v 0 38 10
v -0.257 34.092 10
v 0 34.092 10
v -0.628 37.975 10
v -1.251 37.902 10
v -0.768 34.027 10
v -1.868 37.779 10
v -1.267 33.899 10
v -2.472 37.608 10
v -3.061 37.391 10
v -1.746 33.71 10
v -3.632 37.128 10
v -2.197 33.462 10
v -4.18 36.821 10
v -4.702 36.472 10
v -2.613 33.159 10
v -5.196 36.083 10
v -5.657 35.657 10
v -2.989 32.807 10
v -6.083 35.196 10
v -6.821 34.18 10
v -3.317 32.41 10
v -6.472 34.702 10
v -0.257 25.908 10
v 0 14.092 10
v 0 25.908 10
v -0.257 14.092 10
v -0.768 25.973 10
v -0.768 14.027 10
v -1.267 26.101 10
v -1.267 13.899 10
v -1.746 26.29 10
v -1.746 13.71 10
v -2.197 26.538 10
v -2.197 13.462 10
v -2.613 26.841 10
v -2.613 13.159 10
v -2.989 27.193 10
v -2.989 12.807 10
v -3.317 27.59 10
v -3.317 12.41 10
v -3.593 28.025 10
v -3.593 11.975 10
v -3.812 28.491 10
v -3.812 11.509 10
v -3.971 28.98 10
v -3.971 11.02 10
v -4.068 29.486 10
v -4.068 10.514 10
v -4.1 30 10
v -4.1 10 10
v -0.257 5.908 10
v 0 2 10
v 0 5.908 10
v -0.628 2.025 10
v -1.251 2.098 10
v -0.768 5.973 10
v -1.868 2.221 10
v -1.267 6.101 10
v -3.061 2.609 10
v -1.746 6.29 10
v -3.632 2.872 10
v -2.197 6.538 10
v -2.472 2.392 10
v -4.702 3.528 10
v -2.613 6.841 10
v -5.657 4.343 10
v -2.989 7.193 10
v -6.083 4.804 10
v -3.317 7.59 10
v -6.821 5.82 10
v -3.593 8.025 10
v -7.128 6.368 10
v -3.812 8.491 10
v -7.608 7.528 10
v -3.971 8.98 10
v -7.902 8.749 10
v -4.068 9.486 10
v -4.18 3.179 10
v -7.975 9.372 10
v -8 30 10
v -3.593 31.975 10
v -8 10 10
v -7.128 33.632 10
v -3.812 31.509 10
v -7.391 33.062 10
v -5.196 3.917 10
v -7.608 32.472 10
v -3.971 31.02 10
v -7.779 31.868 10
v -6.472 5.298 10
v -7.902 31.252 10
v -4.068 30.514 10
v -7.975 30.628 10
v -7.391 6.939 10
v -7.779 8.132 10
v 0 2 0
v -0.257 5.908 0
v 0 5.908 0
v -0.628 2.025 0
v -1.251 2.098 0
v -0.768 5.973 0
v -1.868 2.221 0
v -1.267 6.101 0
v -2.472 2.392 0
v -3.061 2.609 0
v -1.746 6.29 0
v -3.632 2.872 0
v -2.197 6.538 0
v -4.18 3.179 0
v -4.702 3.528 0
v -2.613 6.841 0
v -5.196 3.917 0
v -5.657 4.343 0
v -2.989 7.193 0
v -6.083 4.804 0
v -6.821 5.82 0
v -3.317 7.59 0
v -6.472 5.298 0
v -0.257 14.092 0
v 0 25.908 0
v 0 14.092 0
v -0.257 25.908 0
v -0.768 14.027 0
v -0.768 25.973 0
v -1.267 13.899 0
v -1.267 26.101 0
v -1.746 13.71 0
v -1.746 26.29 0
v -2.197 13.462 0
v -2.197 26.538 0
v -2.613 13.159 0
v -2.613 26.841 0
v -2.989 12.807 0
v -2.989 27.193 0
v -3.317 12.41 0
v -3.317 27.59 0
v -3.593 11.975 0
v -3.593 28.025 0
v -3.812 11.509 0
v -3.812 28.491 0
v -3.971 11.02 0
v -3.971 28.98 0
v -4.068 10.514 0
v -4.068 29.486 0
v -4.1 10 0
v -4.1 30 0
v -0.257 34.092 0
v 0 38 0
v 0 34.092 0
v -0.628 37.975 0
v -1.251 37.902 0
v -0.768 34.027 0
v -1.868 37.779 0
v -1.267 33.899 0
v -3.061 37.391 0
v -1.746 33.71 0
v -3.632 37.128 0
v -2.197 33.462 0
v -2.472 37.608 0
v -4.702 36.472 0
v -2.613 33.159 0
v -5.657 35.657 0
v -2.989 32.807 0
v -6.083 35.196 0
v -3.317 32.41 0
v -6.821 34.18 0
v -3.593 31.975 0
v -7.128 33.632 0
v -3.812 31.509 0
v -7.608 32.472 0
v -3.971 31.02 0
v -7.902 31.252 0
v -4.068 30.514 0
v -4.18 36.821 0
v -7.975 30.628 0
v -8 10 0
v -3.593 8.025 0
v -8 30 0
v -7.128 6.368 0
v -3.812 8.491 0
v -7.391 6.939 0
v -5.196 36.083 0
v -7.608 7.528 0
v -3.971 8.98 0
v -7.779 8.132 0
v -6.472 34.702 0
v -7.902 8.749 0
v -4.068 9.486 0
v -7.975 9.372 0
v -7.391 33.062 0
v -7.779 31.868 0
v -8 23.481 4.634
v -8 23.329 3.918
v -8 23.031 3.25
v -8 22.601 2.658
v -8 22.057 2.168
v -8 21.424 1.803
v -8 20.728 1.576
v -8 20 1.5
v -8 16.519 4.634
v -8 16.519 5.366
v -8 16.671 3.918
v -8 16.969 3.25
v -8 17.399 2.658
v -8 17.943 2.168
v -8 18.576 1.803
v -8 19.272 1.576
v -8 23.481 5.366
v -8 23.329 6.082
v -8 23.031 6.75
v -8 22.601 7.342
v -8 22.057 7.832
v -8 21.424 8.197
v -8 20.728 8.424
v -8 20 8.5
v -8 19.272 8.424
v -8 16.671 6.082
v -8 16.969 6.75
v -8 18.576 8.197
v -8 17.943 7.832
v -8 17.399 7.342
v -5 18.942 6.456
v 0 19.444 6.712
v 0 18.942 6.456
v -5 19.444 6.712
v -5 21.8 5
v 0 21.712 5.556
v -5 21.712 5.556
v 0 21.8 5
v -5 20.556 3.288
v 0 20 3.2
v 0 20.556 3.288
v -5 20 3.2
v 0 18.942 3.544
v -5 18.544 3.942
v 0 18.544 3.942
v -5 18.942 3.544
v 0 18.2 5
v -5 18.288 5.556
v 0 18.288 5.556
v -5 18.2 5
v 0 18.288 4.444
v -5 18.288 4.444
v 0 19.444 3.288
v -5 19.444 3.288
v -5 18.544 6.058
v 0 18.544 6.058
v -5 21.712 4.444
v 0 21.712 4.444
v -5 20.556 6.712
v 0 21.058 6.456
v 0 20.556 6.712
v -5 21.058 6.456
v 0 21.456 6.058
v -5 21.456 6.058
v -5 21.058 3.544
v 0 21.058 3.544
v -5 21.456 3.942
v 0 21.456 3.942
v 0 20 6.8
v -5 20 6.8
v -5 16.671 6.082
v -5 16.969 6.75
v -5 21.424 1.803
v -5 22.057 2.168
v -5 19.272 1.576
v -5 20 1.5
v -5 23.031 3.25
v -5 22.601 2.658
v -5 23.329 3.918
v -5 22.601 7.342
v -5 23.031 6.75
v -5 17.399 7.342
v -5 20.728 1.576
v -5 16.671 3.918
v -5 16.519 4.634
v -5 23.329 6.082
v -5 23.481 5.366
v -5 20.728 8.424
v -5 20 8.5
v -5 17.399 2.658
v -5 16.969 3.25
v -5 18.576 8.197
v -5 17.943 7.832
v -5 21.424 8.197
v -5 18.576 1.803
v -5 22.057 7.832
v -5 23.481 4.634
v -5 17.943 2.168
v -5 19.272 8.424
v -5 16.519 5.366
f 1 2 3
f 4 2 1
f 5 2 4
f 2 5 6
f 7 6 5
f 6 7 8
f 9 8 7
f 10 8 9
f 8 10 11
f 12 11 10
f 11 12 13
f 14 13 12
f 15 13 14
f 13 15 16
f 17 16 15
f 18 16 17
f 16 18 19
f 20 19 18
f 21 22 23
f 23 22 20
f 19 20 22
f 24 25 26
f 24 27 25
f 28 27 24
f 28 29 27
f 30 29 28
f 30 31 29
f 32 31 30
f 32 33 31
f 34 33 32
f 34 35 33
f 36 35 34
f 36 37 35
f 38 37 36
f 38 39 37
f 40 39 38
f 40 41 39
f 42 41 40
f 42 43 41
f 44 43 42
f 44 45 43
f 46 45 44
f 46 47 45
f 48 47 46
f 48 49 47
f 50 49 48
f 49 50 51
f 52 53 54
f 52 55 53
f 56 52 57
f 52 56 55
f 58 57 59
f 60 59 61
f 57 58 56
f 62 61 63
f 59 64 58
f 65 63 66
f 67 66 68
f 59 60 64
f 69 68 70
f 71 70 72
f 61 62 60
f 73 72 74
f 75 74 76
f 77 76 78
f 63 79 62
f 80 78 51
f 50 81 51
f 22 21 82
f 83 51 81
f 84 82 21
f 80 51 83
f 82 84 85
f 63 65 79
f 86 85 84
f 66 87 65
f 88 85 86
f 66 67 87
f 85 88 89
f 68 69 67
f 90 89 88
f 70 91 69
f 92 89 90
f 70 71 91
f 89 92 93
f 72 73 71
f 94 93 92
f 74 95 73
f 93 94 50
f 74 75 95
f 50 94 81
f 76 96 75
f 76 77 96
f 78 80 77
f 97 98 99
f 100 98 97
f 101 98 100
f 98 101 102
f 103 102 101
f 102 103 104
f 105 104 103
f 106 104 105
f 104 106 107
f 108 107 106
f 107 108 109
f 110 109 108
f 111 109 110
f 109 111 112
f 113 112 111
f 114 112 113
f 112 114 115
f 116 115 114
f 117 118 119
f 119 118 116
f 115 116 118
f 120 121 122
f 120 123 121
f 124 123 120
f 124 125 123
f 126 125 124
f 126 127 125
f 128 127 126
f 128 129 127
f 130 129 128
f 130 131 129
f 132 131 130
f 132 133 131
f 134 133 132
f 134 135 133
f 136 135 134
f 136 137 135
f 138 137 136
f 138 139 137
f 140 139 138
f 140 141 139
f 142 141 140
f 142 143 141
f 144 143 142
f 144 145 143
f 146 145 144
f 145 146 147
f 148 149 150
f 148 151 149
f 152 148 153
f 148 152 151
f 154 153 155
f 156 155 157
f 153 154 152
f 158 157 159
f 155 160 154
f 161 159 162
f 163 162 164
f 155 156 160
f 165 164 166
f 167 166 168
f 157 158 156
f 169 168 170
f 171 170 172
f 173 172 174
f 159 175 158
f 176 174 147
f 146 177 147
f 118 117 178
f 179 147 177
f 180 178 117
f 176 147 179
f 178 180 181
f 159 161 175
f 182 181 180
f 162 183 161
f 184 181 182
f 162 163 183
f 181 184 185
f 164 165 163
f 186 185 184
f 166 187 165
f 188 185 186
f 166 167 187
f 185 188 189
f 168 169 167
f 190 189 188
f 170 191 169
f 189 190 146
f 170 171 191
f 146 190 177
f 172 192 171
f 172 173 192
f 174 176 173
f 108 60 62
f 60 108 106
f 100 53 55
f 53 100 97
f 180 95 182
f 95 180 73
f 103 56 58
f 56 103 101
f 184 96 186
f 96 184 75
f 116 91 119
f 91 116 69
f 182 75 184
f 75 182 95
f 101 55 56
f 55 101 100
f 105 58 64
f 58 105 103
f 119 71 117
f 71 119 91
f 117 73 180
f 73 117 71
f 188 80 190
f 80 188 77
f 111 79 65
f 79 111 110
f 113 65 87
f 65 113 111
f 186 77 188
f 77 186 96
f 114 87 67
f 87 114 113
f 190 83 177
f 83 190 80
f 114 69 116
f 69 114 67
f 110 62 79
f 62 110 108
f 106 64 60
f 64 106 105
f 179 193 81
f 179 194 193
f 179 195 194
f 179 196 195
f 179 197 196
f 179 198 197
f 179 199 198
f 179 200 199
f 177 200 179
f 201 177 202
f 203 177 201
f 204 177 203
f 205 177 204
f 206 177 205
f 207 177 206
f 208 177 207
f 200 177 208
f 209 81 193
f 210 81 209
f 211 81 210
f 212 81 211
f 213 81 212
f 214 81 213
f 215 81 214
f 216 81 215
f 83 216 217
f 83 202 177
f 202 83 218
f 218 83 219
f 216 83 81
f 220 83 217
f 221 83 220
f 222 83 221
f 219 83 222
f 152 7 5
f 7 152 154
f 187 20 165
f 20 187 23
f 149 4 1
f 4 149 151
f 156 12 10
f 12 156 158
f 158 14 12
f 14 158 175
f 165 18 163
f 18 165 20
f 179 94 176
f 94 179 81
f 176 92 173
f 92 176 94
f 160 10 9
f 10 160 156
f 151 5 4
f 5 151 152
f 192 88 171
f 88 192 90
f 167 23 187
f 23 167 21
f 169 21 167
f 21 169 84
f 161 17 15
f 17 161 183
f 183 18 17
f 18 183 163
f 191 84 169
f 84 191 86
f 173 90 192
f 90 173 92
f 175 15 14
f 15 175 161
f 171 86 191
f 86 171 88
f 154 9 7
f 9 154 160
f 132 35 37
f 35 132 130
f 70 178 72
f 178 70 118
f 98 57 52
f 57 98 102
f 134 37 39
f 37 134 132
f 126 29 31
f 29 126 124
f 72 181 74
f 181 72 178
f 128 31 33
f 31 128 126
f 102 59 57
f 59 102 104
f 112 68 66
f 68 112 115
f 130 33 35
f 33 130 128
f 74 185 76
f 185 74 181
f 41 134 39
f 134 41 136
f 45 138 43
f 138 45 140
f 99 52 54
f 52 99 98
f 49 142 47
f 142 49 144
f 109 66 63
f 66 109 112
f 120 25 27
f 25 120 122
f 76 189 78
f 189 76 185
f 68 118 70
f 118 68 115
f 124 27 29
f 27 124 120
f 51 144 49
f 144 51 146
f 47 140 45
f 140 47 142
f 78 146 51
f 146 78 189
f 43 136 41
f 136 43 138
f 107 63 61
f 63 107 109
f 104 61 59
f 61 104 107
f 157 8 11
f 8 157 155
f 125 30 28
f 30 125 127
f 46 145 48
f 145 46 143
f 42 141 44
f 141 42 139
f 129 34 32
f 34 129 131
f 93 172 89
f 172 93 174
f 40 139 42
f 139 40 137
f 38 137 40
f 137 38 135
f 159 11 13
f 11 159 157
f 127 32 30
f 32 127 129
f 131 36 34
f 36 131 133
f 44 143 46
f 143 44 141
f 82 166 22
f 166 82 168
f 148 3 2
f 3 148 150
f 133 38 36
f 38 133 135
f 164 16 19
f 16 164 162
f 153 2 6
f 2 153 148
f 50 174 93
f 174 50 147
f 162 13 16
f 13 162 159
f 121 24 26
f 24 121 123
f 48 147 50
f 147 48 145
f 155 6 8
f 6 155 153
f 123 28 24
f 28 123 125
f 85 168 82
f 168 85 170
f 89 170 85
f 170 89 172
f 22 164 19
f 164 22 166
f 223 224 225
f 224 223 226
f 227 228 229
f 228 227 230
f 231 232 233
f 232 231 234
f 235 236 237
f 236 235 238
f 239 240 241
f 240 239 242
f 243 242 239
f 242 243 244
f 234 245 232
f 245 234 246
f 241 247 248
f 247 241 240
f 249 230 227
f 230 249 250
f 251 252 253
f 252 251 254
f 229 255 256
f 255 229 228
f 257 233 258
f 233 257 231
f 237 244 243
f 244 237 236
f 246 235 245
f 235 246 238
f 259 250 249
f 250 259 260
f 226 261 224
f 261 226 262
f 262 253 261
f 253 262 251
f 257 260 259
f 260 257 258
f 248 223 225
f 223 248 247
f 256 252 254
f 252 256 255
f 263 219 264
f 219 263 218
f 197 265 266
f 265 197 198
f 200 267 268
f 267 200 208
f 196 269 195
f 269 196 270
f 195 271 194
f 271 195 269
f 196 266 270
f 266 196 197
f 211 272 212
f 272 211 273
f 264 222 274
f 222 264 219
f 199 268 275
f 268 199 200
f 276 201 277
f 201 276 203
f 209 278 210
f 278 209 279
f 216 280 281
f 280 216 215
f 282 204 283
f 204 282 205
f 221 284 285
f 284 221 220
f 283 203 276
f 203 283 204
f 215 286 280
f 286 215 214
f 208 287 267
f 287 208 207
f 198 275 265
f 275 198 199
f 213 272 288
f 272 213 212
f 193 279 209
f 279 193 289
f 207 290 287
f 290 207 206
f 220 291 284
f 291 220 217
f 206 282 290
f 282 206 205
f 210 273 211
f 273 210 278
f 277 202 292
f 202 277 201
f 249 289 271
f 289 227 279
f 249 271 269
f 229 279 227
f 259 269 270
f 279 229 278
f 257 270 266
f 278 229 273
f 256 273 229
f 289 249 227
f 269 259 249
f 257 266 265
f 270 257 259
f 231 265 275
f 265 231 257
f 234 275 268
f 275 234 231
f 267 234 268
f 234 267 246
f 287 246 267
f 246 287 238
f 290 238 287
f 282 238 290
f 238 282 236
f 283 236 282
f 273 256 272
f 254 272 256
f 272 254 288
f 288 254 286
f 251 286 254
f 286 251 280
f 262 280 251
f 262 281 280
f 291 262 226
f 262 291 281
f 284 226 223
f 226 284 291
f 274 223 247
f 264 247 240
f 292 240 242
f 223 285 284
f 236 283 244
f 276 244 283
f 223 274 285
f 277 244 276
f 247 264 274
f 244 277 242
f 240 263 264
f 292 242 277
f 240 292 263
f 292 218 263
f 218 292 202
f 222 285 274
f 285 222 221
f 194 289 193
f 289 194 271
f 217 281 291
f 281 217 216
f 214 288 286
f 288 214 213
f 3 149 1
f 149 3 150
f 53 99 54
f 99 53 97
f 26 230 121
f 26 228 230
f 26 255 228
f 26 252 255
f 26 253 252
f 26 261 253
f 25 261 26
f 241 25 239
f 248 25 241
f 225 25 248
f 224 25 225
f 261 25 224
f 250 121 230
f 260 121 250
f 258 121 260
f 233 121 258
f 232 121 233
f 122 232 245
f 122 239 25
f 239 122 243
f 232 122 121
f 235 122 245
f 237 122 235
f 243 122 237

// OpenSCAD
// file: y-motor.scad
// PRUSA iteration3
// Y motor mount
// GNU GPL v3
// Josef Průša <iam@josefprusa.cz> and contributors
// http://www.reprap.org/wiki/Prusa_Mendel
// http://prusamendel.org

//include <configuration.scad>

thickness = 10;

module y_motor_base(){
    // Motor holding part
    translate(v = [29,-21+50,0]){
        translate(v = [-21+4.5,0,5]) cube(size = [9,31,thickness], center=true);
        translate(v = [-15.5,-15.5,0]) cylinder(h = thickness, r=5.5, $fn=50);
        translate(v = [-15.5,+15.5,0]) cylinder(h = thickness, r=5.5, $fn=50);
        translate([-21,7,0]) rotate([0,0,45]) cube([2, 2, thickness]);

        //end stop
        translate(v = [-10.5,+15.5,0]) cylinder(h = thickness, r=5.5, $fn=50);
        translate([-12,0,0]) cube([7, 15, thickness]);
        translate([-16,16,0]) cube([6, 5, thickness]);
        translate([-21+6,8,0]) cube([12-2, 5, 28]);
        translate([-21+6-2,8-5,0]) cube([4, 10, 28]);
        translate([-21+9.5-2,7,0]) rotate([0,0,45]) cube([2, 2, 28]);
        // Joins motor holder and rod plate
        translate(v = [-29,-21,0]) cube(size = [14,30,thickness]);
    }
    // Front holding part
    translate(v = [0,10,0]) cylinder(h = thickness, r=8, $fn=80);
    translate(v = [0,20,5])cube(size = [16,20,thickness], center=true);
    translate(v = [0,30,0])cylinder(h = thickness, r=8, $fn=80);
}

module y_motor_holes(){
    translate(v = [29,-21+50,0]){
        // Stepper screw holes
        translate(v = [-15.5,-15.5,-1]) cylinder(h = thickness, r=1.8, $fn=20);
        translate(v = [-15.5,+15.5,-1]) cylinder(h = thickness, r=1.8, $fn=20);
        // Stepper screw head holes
        translate(v = [-15.5,-15.5,7]) cylinder(h = 7, r=3.5, $fn=30);
        translate(v = [-15.5,+15.5,7]) cylinder(h = 25, r=3.5, $fn=30);
    }

    // Threaded rod holes
    translate(v = [0,10,-1]) cylinder(h = 12, r=4.1, $fn=50);
    translate(v = [0,30,-1]) cylinder(h = 12, r=4.1, $fn=50);

    // endstop
    translate([25,29,0])  cylinder(h = 29, r=8, $fn=20);

    translate([18,45,15]) rotate([90,0,0]) cylinder(h = 10, r=0.8, $fn=20);
    translate([18,42.2,15]) rotate([90,0,0]) cylinder(h = 2, r1=1.2, r2=0.8, $fn=20);

    translate([18,45,24.5]) rotate([90,0,0]) cylinder(h = 10, r=0.8, $fn=20);
    translate([18,42.2,24.5]) rotate([90,0,0]) cylinder(h = 2, r1=1.2, r2=0.8, $fn=20);

    // endstop corner cutout
    translate([-5-2,30,28]) rotate([0,45,0]) cube([15, 19, 15]);
    translate([-1,41,10])  cube([15, 5, 19]);
    translate([27,33,0]) rotate([0,0,45]) cube([5, 5, 28]);
    translate([12-2,28,10.01]) rotate([0,0,45]) cube([5, 5, 28]);

    translate([19,32,0]) rotate([0,30,0]) cube([8, 20, 18]);
    translate([24.5-2,32,17]) rotate([0,45,0]) cube([2, 20, 2]);

    translate([23-2,32,29]) rotate([0,45,0]) cube([5, 20, 5]);

    // Screw hole to join halves
    translate(v = [-10,+20,thickness/2]) rotate([0, 90, 0]) cylinder(h = 30, r=1.8, $fn=20);
    // Screw head hole to join halves
    translate(v = [-10,+20,thickness/2]) rotate([0, 90, 0]) cylinder(h = 5, r=3.5, $fn=30);
    // Nut slot to join halves
    translate(v = [7, 20, thickness/2]) cube([3, 5.7, thickness+2], center=true);
}

// Final part
module y_motor(){
    difference(){
        y_motor_base();
        y_motor_holes();
    }
}
// main file
include <y-motor.scad>

module y_motor_back() {
    difference() {
        y_motor();
        translate([0,0,-1]) cube([100,100,100]);
    }
}

y_motor_back();
